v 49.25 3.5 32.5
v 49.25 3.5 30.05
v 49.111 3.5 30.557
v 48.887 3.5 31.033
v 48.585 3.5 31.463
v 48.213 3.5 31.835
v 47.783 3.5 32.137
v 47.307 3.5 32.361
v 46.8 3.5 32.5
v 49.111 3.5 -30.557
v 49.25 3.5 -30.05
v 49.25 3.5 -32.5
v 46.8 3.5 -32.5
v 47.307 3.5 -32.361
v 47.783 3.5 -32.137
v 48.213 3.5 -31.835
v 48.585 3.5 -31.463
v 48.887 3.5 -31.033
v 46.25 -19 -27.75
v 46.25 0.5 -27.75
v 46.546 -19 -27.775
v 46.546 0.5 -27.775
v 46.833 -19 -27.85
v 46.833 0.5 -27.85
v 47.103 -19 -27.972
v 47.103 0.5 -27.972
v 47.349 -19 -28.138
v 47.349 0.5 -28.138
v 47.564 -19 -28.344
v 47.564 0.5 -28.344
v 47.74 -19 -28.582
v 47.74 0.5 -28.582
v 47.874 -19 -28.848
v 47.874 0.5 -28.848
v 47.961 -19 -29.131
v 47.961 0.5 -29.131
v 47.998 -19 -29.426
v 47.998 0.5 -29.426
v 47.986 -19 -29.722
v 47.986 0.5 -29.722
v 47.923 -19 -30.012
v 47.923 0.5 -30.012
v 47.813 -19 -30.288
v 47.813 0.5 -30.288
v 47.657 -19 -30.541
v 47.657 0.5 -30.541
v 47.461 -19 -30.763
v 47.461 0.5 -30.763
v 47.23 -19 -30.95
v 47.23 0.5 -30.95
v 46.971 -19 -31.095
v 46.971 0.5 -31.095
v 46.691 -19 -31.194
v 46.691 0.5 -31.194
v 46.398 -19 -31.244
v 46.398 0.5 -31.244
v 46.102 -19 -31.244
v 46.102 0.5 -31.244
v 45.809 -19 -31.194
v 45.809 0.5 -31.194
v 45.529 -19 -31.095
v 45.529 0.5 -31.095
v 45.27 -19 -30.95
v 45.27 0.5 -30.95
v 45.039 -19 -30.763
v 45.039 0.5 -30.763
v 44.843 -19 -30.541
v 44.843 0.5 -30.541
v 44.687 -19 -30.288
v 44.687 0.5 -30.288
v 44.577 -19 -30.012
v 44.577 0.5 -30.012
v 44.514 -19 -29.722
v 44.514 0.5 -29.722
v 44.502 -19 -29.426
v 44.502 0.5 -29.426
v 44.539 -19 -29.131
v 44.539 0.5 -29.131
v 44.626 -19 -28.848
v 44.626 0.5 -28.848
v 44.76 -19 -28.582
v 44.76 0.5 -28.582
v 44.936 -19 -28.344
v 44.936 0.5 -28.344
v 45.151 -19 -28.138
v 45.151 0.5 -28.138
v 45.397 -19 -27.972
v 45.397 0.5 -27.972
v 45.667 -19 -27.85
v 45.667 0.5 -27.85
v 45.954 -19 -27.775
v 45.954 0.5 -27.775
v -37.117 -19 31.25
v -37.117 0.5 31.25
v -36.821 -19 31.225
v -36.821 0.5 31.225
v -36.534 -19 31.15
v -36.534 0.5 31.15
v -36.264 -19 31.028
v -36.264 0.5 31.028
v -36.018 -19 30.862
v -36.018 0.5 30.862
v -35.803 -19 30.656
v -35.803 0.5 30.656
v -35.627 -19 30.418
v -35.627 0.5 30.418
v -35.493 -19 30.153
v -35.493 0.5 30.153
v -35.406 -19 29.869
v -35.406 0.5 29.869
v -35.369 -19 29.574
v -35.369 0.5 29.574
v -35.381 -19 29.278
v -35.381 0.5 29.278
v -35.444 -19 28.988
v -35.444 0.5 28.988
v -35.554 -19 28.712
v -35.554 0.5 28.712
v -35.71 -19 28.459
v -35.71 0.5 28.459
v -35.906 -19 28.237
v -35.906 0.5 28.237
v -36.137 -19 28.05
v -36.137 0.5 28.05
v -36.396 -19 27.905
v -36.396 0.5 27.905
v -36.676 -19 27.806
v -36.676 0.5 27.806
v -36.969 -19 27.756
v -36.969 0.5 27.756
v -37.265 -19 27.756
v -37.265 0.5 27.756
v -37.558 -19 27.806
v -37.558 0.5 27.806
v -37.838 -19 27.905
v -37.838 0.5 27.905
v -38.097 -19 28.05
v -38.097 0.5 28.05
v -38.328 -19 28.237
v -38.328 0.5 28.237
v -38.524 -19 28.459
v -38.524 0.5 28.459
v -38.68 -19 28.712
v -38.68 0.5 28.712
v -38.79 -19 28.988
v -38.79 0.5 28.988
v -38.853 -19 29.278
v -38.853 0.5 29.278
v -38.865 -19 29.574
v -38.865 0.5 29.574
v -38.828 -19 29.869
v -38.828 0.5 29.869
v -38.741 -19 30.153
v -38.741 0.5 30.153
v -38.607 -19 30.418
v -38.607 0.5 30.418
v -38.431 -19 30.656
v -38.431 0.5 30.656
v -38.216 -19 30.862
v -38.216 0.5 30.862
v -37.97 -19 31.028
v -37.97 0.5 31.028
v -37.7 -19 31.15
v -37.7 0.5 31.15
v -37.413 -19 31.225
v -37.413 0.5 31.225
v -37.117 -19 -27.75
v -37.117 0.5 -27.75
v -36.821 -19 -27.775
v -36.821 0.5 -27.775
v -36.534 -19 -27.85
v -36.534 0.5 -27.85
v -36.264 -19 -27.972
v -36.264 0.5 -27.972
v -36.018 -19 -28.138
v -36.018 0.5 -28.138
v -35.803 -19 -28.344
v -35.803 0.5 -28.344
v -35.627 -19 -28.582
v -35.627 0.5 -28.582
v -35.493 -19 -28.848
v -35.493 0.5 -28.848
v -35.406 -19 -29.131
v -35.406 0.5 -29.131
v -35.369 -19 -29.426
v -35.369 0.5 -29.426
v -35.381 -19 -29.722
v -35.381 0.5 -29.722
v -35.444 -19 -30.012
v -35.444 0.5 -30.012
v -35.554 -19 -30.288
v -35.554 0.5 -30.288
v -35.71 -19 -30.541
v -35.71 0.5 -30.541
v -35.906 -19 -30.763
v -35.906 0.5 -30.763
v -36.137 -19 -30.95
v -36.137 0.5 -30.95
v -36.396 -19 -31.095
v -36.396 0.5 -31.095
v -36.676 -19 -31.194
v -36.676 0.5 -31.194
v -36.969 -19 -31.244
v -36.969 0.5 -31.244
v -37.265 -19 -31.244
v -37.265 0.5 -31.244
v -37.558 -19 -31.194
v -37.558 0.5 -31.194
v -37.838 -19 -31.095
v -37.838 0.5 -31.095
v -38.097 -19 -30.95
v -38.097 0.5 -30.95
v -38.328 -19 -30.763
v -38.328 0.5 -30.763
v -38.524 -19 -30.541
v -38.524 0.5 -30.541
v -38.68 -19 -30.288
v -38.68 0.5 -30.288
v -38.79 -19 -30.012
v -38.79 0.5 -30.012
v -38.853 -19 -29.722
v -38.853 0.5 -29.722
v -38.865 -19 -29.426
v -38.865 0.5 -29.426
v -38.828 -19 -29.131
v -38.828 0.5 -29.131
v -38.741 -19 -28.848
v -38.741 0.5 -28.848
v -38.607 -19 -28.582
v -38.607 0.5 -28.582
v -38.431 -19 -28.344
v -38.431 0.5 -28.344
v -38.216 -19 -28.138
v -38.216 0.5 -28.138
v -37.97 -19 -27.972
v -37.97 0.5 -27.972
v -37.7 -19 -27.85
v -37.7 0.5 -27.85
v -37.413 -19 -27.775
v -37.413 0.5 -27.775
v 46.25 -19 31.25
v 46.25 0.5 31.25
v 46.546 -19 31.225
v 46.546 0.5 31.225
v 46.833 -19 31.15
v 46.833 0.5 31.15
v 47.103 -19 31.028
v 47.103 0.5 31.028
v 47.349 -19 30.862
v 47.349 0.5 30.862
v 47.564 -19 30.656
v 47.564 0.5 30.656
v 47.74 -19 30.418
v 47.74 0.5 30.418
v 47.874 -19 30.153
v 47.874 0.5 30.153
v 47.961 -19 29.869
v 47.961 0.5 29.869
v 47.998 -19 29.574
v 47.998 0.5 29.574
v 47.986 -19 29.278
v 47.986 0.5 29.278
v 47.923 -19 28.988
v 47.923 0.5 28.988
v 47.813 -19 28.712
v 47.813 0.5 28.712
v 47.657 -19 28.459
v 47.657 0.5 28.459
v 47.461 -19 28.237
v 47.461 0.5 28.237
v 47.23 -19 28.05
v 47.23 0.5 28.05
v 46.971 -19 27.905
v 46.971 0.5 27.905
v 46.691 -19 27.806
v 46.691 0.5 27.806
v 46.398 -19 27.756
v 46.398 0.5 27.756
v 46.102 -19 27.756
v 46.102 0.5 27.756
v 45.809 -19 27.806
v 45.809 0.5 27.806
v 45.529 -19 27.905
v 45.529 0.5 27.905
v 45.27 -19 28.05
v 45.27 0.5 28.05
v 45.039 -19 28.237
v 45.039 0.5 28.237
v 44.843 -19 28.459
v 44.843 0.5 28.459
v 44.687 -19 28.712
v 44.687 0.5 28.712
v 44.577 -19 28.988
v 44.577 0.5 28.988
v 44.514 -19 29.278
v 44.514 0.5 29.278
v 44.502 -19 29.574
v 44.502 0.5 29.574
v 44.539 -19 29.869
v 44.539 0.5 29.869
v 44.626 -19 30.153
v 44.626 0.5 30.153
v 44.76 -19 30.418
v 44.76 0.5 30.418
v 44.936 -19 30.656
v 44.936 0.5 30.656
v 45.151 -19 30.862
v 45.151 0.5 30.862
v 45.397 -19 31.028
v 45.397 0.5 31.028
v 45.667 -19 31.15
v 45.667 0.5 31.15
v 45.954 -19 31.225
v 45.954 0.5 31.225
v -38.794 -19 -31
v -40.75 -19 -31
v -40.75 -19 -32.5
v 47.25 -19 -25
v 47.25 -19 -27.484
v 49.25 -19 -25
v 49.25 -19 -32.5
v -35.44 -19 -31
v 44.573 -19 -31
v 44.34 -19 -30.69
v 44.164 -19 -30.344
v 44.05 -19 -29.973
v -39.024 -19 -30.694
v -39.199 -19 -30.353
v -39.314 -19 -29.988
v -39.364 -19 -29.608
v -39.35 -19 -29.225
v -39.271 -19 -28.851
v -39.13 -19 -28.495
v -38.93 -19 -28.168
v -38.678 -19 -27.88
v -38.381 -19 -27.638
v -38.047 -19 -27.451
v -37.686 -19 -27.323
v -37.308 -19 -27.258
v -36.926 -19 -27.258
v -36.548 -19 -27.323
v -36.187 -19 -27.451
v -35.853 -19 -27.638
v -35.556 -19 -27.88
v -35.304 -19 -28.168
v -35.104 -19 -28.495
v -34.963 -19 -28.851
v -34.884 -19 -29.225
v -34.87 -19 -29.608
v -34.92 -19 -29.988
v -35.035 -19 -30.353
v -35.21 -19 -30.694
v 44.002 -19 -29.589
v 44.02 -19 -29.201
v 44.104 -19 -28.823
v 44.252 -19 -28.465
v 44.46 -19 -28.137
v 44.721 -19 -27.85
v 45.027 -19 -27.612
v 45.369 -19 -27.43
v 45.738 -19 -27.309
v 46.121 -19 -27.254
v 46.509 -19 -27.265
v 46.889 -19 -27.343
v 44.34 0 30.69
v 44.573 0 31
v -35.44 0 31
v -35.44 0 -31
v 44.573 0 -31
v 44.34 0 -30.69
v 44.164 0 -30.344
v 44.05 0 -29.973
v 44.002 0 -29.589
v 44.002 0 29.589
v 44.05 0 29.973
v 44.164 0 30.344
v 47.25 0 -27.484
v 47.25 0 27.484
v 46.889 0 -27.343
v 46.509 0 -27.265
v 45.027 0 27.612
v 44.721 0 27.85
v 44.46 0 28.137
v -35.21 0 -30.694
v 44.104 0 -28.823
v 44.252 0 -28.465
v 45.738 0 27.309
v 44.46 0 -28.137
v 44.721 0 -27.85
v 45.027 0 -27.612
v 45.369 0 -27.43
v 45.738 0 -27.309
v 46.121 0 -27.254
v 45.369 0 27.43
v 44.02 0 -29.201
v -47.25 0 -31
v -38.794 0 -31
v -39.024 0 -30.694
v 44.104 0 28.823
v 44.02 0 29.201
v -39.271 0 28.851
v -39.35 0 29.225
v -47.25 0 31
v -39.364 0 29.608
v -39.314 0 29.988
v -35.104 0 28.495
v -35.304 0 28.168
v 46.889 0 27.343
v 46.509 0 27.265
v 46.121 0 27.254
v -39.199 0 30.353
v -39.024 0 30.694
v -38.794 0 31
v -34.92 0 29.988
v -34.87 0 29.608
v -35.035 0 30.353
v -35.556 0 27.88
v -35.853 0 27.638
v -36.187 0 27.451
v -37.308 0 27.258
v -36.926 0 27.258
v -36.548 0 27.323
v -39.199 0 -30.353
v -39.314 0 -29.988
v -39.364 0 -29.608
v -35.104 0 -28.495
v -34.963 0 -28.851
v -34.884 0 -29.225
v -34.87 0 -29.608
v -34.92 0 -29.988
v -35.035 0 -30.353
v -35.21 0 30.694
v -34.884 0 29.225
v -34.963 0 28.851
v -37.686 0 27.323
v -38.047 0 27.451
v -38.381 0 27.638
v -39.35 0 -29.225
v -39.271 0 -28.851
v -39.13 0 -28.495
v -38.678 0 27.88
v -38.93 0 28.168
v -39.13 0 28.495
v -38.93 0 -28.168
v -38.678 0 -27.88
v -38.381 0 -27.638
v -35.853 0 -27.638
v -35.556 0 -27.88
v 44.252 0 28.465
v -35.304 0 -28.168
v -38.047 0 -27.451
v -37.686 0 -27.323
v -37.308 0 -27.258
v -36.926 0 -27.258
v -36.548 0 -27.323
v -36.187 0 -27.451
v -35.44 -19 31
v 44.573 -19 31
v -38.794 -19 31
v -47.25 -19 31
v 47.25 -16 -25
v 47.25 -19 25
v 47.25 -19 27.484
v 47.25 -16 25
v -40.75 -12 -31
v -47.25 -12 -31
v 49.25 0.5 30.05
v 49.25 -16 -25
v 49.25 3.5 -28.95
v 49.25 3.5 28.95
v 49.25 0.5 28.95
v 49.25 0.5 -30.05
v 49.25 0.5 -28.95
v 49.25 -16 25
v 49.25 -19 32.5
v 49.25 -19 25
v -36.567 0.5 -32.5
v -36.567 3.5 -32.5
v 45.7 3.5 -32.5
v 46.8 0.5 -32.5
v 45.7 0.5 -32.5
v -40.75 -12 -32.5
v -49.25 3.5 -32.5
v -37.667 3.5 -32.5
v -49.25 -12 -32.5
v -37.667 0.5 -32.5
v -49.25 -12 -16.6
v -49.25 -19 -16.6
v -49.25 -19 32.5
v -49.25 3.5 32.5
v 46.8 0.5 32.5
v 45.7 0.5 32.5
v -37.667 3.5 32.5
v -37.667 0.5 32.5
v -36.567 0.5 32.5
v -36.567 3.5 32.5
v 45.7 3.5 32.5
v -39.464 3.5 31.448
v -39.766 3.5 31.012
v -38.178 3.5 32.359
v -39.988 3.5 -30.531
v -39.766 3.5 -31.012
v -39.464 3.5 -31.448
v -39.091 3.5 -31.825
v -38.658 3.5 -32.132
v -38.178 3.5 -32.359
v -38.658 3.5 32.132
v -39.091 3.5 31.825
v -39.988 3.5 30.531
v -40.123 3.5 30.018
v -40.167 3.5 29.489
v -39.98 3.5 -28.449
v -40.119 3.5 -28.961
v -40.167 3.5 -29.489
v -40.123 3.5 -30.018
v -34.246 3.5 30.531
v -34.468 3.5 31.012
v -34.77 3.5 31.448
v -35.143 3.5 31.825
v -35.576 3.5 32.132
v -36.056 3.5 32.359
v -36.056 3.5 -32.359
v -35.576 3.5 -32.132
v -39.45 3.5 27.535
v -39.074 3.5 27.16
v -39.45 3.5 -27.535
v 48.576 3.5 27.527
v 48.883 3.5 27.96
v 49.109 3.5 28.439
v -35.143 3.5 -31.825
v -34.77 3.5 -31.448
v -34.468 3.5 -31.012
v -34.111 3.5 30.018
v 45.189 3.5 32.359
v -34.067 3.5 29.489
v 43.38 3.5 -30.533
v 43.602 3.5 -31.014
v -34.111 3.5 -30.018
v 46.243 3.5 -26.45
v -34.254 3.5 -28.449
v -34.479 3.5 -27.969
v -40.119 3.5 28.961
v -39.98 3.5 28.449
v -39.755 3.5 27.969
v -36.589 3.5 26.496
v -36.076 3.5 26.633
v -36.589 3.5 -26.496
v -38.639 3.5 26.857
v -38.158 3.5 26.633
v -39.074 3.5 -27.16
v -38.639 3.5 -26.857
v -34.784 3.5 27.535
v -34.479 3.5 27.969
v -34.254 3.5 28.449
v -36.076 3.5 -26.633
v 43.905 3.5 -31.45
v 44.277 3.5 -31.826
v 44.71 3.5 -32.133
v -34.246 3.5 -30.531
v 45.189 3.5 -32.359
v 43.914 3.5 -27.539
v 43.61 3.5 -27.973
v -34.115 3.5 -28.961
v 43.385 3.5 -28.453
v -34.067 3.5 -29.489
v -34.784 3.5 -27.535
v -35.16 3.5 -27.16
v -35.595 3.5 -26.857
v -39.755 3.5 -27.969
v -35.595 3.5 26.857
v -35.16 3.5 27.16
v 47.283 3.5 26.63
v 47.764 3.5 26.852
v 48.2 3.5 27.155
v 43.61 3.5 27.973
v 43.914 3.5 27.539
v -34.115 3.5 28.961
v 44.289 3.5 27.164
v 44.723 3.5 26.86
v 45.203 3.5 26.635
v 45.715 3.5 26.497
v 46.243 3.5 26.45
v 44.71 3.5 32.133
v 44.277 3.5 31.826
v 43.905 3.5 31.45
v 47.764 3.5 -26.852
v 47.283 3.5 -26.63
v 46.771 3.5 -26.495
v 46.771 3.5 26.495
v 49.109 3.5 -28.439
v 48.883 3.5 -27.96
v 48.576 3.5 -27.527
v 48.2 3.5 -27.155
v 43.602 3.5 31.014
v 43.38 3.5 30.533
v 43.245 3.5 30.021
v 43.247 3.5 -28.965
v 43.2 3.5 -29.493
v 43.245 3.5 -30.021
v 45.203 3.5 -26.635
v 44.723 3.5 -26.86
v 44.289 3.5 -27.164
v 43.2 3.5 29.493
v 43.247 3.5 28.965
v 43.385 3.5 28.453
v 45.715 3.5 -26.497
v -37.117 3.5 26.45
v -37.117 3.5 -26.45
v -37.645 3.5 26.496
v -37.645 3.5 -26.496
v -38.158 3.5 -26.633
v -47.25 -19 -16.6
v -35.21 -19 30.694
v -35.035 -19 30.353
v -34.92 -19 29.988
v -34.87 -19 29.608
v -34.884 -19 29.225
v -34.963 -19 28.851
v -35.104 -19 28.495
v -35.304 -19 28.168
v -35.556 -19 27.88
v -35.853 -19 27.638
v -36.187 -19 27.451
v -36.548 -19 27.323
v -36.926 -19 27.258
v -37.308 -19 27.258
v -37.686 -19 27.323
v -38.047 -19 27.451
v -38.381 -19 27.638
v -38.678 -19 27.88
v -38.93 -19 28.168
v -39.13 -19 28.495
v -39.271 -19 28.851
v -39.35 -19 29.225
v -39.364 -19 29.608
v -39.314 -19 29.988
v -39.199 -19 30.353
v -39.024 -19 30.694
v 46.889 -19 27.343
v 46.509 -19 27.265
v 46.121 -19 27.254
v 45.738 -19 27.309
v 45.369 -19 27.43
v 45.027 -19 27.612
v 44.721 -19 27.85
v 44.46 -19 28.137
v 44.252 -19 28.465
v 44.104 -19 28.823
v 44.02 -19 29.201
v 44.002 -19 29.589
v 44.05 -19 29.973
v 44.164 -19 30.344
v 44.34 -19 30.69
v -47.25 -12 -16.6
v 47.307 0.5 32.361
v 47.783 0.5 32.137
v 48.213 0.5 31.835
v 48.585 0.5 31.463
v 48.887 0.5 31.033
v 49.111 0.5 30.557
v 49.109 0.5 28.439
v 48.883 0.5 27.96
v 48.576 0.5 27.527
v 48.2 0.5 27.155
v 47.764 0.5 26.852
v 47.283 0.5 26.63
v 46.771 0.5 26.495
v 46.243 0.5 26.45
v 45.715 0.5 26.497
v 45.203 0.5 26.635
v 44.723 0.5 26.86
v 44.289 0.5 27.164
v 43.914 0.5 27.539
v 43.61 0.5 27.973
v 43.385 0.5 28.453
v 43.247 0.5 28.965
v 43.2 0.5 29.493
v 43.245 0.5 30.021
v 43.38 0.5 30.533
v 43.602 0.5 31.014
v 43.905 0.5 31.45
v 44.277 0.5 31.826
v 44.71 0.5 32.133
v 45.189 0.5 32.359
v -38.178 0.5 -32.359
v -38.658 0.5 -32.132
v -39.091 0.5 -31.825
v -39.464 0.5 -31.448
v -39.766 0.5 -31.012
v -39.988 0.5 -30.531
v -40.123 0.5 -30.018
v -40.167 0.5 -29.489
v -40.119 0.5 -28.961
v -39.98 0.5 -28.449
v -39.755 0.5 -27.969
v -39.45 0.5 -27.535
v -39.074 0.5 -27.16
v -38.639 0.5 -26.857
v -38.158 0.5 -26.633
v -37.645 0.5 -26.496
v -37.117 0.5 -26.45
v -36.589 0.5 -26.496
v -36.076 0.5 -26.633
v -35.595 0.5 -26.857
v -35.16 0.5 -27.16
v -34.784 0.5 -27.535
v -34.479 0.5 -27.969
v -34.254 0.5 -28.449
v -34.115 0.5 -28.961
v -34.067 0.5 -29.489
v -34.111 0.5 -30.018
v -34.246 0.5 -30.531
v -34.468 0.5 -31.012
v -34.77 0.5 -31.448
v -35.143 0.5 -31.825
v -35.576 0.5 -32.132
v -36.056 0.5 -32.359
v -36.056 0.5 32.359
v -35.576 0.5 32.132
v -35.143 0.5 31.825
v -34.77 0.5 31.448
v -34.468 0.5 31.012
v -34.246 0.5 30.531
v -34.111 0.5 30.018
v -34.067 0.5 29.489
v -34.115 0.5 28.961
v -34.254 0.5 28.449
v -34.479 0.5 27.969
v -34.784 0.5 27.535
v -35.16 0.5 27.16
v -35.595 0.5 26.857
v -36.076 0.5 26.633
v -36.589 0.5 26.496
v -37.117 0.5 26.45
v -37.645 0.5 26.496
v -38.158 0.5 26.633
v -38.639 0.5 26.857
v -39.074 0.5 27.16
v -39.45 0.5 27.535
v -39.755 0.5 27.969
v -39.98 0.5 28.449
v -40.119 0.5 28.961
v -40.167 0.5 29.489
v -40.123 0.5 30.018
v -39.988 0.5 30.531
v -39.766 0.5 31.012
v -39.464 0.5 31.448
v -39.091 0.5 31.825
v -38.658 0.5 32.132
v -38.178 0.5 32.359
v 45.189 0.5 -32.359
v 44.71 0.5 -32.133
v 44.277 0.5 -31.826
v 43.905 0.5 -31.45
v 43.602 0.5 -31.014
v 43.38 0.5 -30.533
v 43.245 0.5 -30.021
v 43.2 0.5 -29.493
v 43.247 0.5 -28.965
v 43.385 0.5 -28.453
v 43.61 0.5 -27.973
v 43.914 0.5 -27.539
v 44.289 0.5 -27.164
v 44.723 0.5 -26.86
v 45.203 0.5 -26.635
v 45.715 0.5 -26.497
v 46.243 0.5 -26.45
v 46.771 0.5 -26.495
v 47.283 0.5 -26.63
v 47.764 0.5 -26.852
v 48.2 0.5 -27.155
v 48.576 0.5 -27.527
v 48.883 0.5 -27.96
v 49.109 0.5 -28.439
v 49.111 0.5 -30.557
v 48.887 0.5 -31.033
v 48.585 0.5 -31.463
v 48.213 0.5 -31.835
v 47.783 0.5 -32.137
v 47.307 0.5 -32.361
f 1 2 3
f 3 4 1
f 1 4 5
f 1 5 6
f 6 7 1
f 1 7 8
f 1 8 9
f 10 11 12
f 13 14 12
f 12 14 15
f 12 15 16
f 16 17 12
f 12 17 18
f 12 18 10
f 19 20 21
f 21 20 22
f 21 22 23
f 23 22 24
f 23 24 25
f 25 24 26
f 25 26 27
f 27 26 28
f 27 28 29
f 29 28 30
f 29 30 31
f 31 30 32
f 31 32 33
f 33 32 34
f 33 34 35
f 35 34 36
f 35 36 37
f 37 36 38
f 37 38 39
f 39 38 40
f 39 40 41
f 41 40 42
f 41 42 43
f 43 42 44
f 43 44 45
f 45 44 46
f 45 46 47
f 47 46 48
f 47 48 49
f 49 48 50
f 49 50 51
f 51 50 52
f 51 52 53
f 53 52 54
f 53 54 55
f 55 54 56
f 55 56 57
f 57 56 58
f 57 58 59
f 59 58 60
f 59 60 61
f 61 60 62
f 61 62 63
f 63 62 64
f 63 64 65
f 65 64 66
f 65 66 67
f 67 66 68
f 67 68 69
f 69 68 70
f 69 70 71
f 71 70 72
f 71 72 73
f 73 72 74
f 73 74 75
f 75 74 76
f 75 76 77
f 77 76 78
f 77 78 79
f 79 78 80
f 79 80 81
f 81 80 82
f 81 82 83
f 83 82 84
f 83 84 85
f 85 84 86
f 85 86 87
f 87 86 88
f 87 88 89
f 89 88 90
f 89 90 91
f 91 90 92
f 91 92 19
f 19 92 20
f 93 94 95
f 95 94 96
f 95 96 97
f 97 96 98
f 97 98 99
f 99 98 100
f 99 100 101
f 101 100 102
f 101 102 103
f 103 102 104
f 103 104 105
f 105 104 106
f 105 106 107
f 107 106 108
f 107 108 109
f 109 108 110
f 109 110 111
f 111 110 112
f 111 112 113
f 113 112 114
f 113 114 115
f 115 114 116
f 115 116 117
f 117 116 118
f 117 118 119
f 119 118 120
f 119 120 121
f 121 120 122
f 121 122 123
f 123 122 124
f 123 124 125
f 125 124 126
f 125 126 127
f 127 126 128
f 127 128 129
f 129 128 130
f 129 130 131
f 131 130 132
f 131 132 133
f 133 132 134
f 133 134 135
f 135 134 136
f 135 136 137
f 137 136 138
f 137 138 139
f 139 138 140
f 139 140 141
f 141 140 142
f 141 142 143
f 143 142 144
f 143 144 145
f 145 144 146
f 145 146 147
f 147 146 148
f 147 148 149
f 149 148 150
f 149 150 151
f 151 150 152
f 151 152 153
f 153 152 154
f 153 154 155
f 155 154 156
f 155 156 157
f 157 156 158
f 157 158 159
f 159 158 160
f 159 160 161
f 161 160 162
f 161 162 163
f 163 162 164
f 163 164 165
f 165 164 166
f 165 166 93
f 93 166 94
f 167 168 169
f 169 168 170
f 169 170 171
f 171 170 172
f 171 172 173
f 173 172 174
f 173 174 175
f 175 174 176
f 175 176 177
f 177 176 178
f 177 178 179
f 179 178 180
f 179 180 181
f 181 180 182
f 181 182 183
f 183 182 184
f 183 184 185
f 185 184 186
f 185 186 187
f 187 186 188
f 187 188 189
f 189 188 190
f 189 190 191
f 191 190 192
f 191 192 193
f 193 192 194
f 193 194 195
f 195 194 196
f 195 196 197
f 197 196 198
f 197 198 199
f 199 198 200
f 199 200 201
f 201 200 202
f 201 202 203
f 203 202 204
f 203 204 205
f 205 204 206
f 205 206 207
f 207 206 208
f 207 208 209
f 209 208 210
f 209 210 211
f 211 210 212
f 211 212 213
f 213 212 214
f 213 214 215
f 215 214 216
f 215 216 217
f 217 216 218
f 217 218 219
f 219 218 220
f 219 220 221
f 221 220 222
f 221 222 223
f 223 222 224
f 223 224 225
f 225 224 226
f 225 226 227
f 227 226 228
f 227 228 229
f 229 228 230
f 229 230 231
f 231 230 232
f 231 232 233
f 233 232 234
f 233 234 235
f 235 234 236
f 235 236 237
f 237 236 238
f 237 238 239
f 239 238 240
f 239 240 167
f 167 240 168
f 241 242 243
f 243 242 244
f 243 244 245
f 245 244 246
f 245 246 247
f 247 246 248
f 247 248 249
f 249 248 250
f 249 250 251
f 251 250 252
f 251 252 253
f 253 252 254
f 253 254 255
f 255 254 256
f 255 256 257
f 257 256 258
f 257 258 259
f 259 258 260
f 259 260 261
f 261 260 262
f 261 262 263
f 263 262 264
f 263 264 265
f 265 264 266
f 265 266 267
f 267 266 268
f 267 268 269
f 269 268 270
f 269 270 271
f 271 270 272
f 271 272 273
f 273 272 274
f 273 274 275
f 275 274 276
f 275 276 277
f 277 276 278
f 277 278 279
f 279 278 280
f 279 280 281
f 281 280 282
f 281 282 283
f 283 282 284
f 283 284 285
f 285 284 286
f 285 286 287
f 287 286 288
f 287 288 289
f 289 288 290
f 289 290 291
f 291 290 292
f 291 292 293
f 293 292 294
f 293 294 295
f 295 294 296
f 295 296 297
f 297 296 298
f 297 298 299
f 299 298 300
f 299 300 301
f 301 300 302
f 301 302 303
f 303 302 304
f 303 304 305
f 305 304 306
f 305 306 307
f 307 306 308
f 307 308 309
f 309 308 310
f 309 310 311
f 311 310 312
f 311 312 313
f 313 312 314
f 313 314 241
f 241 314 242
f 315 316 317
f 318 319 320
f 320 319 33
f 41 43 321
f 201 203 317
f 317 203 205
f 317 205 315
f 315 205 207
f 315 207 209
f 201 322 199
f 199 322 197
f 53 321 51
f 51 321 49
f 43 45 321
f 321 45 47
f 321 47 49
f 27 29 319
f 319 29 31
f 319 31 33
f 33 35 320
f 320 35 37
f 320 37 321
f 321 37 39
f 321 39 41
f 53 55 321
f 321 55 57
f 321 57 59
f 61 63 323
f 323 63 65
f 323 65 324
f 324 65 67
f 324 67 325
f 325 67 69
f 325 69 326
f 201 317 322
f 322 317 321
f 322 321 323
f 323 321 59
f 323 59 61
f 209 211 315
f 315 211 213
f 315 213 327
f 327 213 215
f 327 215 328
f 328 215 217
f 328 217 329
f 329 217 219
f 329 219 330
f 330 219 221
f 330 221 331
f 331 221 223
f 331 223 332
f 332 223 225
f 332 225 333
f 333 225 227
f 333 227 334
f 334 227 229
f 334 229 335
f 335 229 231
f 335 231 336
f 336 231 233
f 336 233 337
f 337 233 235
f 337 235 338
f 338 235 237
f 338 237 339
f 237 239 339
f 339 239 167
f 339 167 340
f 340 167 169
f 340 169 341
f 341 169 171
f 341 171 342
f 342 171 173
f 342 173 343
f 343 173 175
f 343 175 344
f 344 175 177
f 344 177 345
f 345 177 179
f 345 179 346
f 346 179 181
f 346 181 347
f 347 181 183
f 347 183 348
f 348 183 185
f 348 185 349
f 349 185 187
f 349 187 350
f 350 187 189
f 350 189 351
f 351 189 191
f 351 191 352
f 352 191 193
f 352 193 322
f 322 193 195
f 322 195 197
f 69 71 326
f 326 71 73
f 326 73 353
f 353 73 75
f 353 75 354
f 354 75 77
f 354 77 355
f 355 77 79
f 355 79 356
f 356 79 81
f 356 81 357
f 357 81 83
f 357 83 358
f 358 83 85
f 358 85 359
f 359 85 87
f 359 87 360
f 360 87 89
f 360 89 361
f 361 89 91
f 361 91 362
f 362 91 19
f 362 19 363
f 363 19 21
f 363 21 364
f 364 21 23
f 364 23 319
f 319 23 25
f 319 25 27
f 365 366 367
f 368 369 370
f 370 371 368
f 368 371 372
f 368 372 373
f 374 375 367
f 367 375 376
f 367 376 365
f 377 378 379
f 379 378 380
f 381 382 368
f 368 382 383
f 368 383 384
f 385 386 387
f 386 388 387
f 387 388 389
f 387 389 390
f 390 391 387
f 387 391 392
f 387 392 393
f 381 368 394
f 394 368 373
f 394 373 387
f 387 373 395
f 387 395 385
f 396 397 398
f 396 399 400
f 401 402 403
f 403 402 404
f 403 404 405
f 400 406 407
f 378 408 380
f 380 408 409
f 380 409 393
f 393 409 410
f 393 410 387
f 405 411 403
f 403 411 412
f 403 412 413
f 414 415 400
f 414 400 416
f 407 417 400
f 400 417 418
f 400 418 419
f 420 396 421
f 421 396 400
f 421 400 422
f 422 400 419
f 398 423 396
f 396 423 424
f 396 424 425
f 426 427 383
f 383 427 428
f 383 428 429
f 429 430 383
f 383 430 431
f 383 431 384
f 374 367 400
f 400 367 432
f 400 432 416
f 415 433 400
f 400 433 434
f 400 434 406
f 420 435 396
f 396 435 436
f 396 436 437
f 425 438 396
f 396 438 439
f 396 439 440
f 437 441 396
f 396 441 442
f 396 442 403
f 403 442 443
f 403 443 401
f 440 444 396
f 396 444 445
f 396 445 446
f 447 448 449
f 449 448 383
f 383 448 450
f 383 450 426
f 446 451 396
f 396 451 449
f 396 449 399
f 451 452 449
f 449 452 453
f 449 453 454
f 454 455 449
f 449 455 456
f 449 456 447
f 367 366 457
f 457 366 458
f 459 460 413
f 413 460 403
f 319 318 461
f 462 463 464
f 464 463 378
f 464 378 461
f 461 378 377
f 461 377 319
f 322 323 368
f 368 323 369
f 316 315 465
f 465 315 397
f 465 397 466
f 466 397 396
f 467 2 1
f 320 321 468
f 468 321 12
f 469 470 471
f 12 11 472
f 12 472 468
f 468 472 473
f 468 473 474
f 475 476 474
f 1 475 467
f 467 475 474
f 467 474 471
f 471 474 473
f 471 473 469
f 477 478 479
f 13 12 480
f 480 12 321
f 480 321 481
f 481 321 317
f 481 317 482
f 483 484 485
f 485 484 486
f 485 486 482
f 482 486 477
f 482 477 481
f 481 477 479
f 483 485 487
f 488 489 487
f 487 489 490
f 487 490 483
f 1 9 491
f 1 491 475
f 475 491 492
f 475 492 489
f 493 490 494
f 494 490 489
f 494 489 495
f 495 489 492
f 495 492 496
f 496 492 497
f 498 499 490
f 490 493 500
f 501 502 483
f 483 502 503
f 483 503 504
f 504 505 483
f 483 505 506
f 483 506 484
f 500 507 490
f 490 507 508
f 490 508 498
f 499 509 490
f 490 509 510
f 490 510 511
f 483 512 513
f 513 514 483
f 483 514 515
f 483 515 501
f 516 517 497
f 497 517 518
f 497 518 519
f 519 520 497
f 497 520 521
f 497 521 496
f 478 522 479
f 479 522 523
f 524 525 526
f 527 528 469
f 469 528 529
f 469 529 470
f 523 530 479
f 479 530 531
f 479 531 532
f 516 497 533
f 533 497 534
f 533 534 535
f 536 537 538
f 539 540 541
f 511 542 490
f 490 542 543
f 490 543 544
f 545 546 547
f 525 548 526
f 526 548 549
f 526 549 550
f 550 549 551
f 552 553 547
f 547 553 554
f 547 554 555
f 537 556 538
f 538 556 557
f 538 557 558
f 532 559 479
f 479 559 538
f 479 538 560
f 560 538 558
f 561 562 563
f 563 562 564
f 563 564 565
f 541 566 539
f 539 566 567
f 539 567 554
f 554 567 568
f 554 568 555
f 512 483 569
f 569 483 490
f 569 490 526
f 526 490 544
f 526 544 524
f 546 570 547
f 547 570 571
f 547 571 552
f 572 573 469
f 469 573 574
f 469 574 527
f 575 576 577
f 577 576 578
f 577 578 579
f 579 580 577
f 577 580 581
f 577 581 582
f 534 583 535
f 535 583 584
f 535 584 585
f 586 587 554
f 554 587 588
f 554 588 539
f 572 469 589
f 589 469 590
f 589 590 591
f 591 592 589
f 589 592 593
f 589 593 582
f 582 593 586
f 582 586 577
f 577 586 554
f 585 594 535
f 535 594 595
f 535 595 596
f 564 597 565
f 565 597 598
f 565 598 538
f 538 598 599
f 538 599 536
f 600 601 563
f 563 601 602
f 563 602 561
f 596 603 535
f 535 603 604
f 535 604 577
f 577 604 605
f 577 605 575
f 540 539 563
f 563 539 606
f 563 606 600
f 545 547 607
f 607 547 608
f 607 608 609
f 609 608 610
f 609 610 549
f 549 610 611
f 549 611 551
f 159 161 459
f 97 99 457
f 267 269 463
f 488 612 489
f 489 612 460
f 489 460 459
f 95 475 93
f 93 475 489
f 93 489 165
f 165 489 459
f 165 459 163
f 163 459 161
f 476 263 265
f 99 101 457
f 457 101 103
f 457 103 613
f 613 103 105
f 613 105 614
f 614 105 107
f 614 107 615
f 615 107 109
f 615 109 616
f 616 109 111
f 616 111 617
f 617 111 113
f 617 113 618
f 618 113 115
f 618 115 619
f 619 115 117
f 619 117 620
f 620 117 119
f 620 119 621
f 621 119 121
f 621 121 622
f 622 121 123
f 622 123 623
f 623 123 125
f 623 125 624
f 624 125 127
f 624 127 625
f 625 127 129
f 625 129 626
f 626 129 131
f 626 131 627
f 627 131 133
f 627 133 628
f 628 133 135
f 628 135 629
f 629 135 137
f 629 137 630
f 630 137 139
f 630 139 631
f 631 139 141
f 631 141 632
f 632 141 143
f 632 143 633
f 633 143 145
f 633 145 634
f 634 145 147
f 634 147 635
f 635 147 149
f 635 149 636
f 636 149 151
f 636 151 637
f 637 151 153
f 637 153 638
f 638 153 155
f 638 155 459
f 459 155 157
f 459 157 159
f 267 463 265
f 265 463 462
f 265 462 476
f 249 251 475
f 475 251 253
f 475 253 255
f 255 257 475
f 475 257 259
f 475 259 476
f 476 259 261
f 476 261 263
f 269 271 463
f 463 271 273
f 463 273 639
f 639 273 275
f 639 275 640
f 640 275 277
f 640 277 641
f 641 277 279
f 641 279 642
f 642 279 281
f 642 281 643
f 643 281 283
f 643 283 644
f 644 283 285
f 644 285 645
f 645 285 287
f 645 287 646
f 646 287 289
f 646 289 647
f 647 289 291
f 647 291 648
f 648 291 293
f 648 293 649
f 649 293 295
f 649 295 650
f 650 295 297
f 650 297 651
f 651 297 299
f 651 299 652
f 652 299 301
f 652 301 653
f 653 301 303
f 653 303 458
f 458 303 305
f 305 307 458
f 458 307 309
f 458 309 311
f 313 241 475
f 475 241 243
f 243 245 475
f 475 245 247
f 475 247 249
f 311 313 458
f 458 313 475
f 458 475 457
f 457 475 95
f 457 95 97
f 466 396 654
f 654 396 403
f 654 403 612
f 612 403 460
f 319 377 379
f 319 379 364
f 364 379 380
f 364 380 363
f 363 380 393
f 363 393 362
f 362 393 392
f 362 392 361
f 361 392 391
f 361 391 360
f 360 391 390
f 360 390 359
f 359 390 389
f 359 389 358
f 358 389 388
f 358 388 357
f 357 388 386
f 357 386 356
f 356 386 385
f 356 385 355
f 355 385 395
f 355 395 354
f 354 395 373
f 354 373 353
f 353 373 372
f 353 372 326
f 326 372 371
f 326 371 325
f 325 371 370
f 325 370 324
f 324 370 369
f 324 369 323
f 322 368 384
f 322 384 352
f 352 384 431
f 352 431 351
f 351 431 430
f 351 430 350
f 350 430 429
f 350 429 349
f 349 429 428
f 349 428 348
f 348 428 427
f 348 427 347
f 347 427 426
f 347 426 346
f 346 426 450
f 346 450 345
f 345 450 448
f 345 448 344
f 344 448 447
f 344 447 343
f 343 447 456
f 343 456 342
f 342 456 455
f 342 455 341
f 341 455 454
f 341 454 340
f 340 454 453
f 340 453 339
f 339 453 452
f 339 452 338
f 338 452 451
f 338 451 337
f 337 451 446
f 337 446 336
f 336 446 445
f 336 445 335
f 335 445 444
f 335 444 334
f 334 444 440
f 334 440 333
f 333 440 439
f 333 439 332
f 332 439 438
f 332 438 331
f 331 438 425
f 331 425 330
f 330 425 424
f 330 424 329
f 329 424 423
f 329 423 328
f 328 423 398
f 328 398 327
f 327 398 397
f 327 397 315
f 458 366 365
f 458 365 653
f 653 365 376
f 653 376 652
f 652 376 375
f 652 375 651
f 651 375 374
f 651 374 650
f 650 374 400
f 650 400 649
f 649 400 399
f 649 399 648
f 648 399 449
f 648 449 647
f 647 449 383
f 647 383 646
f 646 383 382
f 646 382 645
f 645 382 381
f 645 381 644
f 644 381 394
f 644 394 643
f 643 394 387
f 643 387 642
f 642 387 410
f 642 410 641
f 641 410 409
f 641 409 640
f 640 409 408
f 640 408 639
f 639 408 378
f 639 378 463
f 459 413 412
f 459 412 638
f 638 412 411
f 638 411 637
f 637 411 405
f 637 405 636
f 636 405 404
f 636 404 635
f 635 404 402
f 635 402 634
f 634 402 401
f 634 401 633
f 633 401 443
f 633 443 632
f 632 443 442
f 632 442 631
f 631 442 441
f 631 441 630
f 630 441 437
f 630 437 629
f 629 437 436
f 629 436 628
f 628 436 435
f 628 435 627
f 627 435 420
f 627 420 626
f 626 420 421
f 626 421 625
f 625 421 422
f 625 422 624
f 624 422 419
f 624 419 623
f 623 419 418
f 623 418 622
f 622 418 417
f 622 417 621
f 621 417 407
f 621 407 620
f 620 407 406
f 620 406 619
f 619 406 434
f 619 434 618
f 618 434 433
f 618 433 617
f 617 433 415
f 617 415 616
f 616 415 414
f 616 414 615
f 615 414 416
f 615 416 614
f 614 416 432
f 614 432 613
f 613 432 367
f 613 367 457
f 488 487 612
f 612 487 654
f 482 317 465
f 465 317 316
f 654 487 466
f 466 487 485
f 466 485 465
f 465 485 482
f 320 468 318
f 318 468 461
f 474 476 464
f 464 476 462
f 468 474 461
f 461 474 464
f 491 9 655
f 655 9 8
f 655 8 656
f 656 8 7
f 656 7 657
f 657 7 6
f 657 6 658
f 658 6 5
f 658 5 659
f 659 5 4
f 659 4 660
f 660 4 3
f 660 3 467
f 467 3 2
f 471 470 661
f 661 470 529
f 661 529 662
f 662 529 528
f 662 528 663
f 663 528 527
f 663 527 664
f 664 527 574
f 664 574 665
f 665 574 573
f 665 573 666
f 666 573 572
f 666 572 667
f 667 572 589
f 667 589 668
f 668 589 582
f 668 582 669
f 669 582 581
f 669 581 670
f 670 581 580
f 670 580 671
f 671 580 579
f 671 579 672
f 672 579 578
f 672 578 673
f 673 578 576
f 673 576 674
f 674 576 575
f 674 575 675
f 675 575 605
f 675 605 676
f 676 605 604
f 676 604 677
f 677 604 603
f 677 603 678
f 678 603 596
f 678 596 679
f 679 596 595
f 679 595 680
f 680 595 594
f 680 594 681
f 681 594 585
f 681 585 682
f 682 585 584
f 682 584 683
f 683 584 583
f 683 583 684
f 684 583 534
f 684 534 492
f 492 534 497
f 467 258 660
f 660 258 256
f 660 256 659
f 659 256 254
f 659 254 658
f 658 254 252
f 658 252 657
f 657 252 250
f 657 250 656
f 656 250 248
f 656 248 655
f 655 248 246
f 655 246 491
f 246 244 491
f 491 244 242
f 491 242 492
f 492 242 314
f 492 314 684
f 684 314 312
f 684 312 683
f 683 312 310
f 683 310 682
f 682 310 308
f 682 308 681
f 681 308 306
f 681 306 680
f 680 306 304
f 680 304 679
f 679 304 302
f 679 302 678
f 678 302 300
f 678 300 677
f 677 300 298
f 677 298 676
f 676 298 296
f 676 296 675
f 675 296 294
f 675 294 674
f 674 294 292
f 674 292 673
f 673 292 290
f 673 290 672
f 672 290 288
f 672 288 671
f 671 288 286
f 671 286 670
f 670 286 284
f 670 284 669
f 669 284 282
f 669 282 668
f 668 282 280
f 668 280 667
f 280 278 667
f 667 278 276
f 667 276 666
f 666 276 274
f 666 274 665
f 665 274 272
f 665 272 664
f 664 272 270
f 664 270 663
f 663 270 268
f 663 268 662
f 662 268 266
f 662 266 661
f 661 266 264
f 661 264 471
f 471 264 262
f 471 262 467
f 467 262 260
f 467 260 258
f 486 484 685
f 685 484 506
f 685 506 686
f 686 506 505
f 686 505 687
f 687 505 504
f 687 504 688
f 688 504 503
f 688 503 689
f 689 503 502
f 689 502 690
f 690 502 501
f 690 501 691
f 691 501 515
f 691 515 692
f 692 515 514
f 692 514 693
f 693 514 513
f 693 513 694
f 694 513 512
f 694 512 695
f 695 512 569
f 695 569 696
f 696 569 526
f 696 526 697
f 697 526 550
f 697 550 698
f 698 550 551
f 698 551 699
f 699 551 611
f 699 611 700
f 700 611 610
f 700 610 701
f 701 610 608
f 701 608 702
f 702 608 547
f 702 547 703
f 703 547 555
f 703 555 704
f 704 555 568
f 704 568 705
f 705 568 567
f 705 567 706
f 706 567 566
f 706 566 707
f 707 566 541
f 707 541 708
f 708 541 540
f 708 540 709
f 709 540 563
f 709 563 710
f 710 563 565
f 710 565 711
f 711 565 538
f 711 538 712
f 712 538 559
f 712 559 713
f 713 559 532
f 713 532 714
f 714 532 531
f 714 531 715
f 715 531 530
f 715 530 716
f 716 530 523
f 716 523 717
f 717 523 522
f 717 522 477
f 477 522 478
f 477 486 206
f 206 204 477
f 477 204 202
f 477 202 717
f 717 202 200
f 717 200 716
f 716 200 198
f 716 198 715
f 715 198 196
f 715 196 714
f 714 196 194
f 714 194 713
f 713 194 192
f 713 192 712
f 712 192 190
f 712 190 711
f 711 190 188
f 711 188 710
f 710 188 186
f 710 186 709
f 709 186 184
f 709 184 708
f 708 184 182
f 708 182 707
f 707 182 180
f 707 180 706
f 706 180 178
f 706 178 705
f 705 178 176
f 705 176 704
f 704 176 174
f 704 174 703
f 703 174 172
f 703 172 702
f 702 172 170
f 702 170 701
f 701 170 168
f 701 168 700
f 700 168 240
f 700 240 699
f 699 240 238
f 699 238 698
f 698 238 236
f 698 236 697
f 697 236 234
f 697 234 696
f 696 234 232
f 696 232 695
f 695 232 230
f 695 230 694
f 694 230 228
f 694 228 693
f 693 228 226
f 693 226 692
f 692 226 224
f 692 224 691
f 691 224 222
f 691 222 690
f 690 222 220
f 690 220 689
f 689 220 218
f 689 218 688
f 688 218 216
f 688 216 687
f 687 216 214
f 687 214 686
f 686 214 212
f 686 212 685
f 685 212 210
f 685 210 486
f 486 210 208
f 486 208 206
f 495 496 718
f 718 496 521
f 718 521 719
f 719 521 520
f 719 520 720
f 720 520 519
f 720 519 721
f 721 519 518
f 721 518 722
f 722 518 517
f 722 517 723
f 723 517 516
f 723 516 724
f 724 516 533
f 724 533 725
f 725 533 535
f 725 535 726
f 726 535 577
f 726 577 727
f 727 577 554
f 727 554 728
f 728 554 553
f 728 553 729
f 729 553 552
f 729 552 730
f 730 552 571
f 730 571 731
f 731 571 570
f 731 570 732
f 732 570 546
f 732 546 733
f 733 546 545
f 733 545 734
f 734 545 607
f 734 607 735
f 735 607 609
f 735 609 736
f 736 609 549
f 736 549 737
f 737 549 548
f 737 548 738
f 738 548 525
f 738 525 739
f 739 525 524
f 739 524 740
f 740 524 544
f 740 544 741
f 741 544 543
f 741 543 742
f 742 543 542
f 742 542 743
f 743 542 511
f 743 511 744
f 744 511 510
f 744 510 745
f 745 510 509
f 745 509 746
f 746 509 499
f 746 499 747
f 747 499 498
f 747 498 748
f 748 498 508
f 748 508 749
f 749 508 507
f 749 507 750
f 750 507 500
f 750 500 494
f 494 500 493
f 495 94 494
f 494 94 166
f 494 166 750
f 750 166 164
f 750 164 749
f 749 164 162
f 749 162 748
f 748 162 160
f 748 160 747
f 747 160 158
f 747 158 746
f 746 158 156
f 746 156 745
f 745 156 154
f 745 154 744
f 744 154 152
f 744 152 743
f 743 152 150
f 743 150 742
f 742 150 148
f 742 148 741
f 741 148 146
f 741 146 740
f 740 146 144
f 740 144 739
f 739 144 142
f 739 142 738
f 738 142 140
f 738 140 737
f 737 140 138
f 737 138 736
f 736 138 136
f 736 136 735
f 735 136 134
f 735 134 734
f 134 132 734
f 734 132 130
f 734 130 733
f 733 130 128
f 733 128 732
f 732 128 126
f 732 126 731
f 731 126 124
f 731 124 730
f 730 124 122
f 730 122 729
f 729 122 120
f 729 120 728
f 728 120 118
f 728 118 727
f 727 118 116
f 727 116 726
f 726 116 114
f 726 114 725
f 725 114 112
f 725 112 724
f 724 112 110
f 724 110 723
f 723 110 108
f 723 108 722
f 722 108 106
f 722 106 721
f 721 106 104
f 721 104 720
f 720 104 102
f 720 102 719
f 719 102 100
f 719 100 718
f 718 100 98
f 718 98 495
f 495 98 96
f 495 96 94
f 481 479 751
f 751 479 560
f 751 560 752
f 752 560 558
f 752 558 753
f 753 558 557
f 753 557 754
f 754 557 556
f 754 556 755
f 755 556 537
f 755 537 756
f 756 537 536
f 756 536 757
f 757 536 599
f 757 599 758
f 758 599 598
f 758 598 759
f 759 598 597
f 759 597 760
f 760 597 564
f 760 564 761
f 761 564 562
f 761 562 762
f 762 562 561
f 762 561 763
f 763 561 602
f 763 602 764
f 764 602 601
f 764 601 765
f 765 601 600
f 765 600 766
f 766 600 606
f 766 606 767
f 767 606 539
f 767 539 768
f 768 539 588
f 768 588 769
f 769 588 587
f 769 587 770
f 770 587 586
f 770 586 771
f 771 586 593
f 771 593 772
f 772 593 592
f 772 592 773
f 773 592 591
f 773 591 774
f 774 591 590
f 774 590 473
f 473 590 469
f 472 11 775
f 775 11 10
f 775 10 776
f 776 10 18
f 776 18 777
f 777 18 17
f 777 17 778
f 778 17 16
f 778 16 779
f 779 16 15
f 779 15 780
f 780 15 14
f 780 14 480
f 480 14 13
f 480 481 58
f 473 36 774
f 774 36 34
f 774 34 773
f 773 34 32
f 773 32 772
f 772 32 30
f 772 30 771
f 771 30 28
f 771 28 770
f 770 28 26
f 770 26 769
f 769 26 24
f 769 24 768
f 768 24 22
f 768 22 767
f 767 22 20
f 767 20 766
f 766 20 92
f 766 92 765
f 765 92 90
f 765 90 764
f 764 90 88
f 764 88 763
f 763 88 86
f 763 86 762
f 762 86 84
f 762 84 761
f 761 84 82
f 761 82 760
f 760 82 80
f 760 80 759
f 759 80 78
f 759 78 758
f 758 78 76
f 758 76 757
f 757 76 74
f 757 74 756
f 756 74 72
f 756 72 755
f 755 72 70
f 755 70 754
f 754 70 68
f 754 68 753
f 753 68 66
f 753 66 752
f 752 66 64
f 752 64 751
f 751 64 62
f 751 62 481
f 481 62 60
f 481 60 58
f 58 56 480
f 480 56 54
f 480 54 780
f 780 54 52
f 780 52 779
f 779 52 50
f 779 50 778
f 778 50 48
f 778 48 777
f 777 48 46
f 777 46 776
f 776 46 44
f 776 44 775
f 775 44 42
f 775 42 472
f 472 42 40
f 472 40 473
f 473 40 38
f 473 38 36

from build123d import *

# Parameters (mm, degrees)
SKETCH_1_W           = 98.5
SKETCH_1_H           = 65
EXTRUDE_1_DEPTH      = 3.5
SKETCH_2_W           = 98.5
SKETCH_2_H           = 65
SKETCH_2_W_2         = 94.5
SKETCH_2_H_2         = 62
EXTRUDE_2_DEPTH      = 19
SKETCH_9_R           = 1.75
CUT_EXTRUDE_7_DEPTH  = 64.151108462
SKETCH_10_R          = 2.25
SKETCH_10_R_2        = 1.75
EXTRUDE_6_DEPTH      = 19
SKETCH_11_W          = 8.5
SKETCH_11_H          = 15.9
CUT_EXTRUDE_8_DEPTH  = 7
SKETCH_12_W          = 50
SKETCH_12_H          = 6
CUT_EXTRUDE_9_DEPTH  = 7
SKETCH_13_R          = 3.05
CUT_EXTRUDE_10_DEPTH = 3


with BuildPart() as part:
    # 草图1 → 凸台-拉伸1 (new body)
    with BuildSketch(Plane(origin=(0, 0, 0), x_dir=(1, 0, 0), z_dir=(0, 1, 0))):
        Rectangle(SKETCH_1_W, SKETCH_1_H)
    extrude(amount=EXTRUDE_1_DEPTH)

    # 草图2 → 凸台-拉伸2 (add)
    with BuildSketch(Plane(origin=(0, 0, 0), x_dir=(-1, 0, 0), z_dir=(0, -1, 0))):
        Rectangle(SKETCH_2_W, SKETCH_2_H)
        Rectangle(SKETCH_2_W_2, SKETCH_2_H_2, mode=Mode.SUBTRACT)
    extrude(amount=EXTRUDE_2_DEPTH)

    # 草图9 → 切除-拉伸7 (cut, through all)
    with BuildSketch(Plane(origin=(0, 3.5, 0), x_dir=(1, 0, 0), z_dir=(0, 1, 0))):
        with Locations(Location((46.25, 29.5, 0), (0, 0, 270))):
            Circle(SKETCH_9_R)
        with Locations(Location((46.25, -29.5, 0), (0, 0, 270))):
            Circle(SKETCH_9_R)
        with Locations(Location((-37.117, 29.5, 0), (0, 0, 270))):
            Circle(SKETCH_9_R)
        with Locations(Location((-37.117, -29.5, 0), (0, 0, 270))):
            Circle(SKETCH_9_R)
    extrude(amount=-CUT_EXTRUDE_7_DEPTH, mode=Mode.SUBTRACT)

    # 草图10 → 凸台-拉伸6 (add, through all)
    # profile 1 of 4: a face of its own
    with BuildSketch(Plane(origin=(0, 0, 0), x_dir=(-1, 0, 0), z_dir=(0, -1, 0))):
        with Locations((-46.25, 29.5)):
            Circle(SKETCH_10_R)
        with Locations(Location((-46.25, 29.5, 0), (0, 0, 270))):
            Circle(SKETCH_10_R_2, mode=Mode.SUBTRACT)
    # profile 2 of 4: a face of its own
    with BuildSketch(Plane(origin=(0, 0, 0), x_dir=(-1, 0, 0), z_dir=(0, -1, 0))):
        with Locations((37.117, 29.5)):
            Circle(SKETCH_10_R)
        with Locations(Location((37.117, 29.5, 0), (0, 0, 270))):
            Circle(SKETCH_10_R_2, mode=Mode.SUBTRACT)
    # profile 3 of 4: a face of its own
    with BuildSketch(Plane(origin=(0, 0, 0), x_dir=(-1, 0, 0), z_dir=(0, -1, 0))):
        with Locations((-46.25, -29.5)):
            Circle(SKETCH_10_R)
        with Locations(Location((-46.25, -29.5, 0), (0, 0, 270))):
            Circle(SKETCH_10_R_2, mode=Mode.SUBTRACT)
    # profile 4 of 4: a face of its own
    with BuildSketch(Plane(origin=(0, 0, 0), x_dir=(-1, 0, 0), z_dir=(0, -1, 0))):
        with Locations((37.117, -29.5)):
            Circle(SKETCH_10_R)
        with Locations(Location((37.117, -29.5, 0), (0, 0, 270))):
            Circle(SKETCH_10_R_2, mode=Mode.SUBTRACT)
    extrude(amount=EXTRUDE_6_DEPTH)

    # 草图11 → 切除-拉伸8 (cut)
    with BuildSketch(Plane(origin=(0, -19, 0), x_dir=(-1, 0, 0), z_dir=(0, -1, 0))):
        with Locations((45, 24.55)):
            Rectangle(SKETCH_11_W, SKETCH_11_H)
    extrude(amount=-CUT_EXTRUDE_8_DEPTH, mode=Mode.SUBTRACT)

    # 草图12 → 切除-拉伸9 (cut)
    with BuildSketch(Plane(origin=(49.25, 0, 0), x_dir=(0, 0, -1), z_dir=(1, 0, 0))):
        with Locations((0, -19)):
            Rectangle(SKETCH_12_W, SKETCH_12_H)
    extrude(amount=-CUT_EXTRUDE_9_DEPTH, mode=Mode.SUBTRACT)

    # 草图13 → 切除-拉伸10 (cut)
    with BuildSketch(Plane(origin=(0, 3.5, 0), x_dir=(1, 0, 0), z_dir=(0, 1, 0))):
        with Locations((-37.117, 29.5)):
            Circle(SKETCH_13_R)
        with Locations((46.25, 29.5)):
            Circle(SKETCH_13_R)
        with Locations((46.25, -29.5)):
            Circle(SKETCH_13_R)
        with Locations((-37.117, -29.5)):
            Circle(SKETCH_13_R)
    extrude(amount=-CUT_EXTRUDE_10_DEPTH, mode=Mode.SUBTRACT)


solid = part.part
